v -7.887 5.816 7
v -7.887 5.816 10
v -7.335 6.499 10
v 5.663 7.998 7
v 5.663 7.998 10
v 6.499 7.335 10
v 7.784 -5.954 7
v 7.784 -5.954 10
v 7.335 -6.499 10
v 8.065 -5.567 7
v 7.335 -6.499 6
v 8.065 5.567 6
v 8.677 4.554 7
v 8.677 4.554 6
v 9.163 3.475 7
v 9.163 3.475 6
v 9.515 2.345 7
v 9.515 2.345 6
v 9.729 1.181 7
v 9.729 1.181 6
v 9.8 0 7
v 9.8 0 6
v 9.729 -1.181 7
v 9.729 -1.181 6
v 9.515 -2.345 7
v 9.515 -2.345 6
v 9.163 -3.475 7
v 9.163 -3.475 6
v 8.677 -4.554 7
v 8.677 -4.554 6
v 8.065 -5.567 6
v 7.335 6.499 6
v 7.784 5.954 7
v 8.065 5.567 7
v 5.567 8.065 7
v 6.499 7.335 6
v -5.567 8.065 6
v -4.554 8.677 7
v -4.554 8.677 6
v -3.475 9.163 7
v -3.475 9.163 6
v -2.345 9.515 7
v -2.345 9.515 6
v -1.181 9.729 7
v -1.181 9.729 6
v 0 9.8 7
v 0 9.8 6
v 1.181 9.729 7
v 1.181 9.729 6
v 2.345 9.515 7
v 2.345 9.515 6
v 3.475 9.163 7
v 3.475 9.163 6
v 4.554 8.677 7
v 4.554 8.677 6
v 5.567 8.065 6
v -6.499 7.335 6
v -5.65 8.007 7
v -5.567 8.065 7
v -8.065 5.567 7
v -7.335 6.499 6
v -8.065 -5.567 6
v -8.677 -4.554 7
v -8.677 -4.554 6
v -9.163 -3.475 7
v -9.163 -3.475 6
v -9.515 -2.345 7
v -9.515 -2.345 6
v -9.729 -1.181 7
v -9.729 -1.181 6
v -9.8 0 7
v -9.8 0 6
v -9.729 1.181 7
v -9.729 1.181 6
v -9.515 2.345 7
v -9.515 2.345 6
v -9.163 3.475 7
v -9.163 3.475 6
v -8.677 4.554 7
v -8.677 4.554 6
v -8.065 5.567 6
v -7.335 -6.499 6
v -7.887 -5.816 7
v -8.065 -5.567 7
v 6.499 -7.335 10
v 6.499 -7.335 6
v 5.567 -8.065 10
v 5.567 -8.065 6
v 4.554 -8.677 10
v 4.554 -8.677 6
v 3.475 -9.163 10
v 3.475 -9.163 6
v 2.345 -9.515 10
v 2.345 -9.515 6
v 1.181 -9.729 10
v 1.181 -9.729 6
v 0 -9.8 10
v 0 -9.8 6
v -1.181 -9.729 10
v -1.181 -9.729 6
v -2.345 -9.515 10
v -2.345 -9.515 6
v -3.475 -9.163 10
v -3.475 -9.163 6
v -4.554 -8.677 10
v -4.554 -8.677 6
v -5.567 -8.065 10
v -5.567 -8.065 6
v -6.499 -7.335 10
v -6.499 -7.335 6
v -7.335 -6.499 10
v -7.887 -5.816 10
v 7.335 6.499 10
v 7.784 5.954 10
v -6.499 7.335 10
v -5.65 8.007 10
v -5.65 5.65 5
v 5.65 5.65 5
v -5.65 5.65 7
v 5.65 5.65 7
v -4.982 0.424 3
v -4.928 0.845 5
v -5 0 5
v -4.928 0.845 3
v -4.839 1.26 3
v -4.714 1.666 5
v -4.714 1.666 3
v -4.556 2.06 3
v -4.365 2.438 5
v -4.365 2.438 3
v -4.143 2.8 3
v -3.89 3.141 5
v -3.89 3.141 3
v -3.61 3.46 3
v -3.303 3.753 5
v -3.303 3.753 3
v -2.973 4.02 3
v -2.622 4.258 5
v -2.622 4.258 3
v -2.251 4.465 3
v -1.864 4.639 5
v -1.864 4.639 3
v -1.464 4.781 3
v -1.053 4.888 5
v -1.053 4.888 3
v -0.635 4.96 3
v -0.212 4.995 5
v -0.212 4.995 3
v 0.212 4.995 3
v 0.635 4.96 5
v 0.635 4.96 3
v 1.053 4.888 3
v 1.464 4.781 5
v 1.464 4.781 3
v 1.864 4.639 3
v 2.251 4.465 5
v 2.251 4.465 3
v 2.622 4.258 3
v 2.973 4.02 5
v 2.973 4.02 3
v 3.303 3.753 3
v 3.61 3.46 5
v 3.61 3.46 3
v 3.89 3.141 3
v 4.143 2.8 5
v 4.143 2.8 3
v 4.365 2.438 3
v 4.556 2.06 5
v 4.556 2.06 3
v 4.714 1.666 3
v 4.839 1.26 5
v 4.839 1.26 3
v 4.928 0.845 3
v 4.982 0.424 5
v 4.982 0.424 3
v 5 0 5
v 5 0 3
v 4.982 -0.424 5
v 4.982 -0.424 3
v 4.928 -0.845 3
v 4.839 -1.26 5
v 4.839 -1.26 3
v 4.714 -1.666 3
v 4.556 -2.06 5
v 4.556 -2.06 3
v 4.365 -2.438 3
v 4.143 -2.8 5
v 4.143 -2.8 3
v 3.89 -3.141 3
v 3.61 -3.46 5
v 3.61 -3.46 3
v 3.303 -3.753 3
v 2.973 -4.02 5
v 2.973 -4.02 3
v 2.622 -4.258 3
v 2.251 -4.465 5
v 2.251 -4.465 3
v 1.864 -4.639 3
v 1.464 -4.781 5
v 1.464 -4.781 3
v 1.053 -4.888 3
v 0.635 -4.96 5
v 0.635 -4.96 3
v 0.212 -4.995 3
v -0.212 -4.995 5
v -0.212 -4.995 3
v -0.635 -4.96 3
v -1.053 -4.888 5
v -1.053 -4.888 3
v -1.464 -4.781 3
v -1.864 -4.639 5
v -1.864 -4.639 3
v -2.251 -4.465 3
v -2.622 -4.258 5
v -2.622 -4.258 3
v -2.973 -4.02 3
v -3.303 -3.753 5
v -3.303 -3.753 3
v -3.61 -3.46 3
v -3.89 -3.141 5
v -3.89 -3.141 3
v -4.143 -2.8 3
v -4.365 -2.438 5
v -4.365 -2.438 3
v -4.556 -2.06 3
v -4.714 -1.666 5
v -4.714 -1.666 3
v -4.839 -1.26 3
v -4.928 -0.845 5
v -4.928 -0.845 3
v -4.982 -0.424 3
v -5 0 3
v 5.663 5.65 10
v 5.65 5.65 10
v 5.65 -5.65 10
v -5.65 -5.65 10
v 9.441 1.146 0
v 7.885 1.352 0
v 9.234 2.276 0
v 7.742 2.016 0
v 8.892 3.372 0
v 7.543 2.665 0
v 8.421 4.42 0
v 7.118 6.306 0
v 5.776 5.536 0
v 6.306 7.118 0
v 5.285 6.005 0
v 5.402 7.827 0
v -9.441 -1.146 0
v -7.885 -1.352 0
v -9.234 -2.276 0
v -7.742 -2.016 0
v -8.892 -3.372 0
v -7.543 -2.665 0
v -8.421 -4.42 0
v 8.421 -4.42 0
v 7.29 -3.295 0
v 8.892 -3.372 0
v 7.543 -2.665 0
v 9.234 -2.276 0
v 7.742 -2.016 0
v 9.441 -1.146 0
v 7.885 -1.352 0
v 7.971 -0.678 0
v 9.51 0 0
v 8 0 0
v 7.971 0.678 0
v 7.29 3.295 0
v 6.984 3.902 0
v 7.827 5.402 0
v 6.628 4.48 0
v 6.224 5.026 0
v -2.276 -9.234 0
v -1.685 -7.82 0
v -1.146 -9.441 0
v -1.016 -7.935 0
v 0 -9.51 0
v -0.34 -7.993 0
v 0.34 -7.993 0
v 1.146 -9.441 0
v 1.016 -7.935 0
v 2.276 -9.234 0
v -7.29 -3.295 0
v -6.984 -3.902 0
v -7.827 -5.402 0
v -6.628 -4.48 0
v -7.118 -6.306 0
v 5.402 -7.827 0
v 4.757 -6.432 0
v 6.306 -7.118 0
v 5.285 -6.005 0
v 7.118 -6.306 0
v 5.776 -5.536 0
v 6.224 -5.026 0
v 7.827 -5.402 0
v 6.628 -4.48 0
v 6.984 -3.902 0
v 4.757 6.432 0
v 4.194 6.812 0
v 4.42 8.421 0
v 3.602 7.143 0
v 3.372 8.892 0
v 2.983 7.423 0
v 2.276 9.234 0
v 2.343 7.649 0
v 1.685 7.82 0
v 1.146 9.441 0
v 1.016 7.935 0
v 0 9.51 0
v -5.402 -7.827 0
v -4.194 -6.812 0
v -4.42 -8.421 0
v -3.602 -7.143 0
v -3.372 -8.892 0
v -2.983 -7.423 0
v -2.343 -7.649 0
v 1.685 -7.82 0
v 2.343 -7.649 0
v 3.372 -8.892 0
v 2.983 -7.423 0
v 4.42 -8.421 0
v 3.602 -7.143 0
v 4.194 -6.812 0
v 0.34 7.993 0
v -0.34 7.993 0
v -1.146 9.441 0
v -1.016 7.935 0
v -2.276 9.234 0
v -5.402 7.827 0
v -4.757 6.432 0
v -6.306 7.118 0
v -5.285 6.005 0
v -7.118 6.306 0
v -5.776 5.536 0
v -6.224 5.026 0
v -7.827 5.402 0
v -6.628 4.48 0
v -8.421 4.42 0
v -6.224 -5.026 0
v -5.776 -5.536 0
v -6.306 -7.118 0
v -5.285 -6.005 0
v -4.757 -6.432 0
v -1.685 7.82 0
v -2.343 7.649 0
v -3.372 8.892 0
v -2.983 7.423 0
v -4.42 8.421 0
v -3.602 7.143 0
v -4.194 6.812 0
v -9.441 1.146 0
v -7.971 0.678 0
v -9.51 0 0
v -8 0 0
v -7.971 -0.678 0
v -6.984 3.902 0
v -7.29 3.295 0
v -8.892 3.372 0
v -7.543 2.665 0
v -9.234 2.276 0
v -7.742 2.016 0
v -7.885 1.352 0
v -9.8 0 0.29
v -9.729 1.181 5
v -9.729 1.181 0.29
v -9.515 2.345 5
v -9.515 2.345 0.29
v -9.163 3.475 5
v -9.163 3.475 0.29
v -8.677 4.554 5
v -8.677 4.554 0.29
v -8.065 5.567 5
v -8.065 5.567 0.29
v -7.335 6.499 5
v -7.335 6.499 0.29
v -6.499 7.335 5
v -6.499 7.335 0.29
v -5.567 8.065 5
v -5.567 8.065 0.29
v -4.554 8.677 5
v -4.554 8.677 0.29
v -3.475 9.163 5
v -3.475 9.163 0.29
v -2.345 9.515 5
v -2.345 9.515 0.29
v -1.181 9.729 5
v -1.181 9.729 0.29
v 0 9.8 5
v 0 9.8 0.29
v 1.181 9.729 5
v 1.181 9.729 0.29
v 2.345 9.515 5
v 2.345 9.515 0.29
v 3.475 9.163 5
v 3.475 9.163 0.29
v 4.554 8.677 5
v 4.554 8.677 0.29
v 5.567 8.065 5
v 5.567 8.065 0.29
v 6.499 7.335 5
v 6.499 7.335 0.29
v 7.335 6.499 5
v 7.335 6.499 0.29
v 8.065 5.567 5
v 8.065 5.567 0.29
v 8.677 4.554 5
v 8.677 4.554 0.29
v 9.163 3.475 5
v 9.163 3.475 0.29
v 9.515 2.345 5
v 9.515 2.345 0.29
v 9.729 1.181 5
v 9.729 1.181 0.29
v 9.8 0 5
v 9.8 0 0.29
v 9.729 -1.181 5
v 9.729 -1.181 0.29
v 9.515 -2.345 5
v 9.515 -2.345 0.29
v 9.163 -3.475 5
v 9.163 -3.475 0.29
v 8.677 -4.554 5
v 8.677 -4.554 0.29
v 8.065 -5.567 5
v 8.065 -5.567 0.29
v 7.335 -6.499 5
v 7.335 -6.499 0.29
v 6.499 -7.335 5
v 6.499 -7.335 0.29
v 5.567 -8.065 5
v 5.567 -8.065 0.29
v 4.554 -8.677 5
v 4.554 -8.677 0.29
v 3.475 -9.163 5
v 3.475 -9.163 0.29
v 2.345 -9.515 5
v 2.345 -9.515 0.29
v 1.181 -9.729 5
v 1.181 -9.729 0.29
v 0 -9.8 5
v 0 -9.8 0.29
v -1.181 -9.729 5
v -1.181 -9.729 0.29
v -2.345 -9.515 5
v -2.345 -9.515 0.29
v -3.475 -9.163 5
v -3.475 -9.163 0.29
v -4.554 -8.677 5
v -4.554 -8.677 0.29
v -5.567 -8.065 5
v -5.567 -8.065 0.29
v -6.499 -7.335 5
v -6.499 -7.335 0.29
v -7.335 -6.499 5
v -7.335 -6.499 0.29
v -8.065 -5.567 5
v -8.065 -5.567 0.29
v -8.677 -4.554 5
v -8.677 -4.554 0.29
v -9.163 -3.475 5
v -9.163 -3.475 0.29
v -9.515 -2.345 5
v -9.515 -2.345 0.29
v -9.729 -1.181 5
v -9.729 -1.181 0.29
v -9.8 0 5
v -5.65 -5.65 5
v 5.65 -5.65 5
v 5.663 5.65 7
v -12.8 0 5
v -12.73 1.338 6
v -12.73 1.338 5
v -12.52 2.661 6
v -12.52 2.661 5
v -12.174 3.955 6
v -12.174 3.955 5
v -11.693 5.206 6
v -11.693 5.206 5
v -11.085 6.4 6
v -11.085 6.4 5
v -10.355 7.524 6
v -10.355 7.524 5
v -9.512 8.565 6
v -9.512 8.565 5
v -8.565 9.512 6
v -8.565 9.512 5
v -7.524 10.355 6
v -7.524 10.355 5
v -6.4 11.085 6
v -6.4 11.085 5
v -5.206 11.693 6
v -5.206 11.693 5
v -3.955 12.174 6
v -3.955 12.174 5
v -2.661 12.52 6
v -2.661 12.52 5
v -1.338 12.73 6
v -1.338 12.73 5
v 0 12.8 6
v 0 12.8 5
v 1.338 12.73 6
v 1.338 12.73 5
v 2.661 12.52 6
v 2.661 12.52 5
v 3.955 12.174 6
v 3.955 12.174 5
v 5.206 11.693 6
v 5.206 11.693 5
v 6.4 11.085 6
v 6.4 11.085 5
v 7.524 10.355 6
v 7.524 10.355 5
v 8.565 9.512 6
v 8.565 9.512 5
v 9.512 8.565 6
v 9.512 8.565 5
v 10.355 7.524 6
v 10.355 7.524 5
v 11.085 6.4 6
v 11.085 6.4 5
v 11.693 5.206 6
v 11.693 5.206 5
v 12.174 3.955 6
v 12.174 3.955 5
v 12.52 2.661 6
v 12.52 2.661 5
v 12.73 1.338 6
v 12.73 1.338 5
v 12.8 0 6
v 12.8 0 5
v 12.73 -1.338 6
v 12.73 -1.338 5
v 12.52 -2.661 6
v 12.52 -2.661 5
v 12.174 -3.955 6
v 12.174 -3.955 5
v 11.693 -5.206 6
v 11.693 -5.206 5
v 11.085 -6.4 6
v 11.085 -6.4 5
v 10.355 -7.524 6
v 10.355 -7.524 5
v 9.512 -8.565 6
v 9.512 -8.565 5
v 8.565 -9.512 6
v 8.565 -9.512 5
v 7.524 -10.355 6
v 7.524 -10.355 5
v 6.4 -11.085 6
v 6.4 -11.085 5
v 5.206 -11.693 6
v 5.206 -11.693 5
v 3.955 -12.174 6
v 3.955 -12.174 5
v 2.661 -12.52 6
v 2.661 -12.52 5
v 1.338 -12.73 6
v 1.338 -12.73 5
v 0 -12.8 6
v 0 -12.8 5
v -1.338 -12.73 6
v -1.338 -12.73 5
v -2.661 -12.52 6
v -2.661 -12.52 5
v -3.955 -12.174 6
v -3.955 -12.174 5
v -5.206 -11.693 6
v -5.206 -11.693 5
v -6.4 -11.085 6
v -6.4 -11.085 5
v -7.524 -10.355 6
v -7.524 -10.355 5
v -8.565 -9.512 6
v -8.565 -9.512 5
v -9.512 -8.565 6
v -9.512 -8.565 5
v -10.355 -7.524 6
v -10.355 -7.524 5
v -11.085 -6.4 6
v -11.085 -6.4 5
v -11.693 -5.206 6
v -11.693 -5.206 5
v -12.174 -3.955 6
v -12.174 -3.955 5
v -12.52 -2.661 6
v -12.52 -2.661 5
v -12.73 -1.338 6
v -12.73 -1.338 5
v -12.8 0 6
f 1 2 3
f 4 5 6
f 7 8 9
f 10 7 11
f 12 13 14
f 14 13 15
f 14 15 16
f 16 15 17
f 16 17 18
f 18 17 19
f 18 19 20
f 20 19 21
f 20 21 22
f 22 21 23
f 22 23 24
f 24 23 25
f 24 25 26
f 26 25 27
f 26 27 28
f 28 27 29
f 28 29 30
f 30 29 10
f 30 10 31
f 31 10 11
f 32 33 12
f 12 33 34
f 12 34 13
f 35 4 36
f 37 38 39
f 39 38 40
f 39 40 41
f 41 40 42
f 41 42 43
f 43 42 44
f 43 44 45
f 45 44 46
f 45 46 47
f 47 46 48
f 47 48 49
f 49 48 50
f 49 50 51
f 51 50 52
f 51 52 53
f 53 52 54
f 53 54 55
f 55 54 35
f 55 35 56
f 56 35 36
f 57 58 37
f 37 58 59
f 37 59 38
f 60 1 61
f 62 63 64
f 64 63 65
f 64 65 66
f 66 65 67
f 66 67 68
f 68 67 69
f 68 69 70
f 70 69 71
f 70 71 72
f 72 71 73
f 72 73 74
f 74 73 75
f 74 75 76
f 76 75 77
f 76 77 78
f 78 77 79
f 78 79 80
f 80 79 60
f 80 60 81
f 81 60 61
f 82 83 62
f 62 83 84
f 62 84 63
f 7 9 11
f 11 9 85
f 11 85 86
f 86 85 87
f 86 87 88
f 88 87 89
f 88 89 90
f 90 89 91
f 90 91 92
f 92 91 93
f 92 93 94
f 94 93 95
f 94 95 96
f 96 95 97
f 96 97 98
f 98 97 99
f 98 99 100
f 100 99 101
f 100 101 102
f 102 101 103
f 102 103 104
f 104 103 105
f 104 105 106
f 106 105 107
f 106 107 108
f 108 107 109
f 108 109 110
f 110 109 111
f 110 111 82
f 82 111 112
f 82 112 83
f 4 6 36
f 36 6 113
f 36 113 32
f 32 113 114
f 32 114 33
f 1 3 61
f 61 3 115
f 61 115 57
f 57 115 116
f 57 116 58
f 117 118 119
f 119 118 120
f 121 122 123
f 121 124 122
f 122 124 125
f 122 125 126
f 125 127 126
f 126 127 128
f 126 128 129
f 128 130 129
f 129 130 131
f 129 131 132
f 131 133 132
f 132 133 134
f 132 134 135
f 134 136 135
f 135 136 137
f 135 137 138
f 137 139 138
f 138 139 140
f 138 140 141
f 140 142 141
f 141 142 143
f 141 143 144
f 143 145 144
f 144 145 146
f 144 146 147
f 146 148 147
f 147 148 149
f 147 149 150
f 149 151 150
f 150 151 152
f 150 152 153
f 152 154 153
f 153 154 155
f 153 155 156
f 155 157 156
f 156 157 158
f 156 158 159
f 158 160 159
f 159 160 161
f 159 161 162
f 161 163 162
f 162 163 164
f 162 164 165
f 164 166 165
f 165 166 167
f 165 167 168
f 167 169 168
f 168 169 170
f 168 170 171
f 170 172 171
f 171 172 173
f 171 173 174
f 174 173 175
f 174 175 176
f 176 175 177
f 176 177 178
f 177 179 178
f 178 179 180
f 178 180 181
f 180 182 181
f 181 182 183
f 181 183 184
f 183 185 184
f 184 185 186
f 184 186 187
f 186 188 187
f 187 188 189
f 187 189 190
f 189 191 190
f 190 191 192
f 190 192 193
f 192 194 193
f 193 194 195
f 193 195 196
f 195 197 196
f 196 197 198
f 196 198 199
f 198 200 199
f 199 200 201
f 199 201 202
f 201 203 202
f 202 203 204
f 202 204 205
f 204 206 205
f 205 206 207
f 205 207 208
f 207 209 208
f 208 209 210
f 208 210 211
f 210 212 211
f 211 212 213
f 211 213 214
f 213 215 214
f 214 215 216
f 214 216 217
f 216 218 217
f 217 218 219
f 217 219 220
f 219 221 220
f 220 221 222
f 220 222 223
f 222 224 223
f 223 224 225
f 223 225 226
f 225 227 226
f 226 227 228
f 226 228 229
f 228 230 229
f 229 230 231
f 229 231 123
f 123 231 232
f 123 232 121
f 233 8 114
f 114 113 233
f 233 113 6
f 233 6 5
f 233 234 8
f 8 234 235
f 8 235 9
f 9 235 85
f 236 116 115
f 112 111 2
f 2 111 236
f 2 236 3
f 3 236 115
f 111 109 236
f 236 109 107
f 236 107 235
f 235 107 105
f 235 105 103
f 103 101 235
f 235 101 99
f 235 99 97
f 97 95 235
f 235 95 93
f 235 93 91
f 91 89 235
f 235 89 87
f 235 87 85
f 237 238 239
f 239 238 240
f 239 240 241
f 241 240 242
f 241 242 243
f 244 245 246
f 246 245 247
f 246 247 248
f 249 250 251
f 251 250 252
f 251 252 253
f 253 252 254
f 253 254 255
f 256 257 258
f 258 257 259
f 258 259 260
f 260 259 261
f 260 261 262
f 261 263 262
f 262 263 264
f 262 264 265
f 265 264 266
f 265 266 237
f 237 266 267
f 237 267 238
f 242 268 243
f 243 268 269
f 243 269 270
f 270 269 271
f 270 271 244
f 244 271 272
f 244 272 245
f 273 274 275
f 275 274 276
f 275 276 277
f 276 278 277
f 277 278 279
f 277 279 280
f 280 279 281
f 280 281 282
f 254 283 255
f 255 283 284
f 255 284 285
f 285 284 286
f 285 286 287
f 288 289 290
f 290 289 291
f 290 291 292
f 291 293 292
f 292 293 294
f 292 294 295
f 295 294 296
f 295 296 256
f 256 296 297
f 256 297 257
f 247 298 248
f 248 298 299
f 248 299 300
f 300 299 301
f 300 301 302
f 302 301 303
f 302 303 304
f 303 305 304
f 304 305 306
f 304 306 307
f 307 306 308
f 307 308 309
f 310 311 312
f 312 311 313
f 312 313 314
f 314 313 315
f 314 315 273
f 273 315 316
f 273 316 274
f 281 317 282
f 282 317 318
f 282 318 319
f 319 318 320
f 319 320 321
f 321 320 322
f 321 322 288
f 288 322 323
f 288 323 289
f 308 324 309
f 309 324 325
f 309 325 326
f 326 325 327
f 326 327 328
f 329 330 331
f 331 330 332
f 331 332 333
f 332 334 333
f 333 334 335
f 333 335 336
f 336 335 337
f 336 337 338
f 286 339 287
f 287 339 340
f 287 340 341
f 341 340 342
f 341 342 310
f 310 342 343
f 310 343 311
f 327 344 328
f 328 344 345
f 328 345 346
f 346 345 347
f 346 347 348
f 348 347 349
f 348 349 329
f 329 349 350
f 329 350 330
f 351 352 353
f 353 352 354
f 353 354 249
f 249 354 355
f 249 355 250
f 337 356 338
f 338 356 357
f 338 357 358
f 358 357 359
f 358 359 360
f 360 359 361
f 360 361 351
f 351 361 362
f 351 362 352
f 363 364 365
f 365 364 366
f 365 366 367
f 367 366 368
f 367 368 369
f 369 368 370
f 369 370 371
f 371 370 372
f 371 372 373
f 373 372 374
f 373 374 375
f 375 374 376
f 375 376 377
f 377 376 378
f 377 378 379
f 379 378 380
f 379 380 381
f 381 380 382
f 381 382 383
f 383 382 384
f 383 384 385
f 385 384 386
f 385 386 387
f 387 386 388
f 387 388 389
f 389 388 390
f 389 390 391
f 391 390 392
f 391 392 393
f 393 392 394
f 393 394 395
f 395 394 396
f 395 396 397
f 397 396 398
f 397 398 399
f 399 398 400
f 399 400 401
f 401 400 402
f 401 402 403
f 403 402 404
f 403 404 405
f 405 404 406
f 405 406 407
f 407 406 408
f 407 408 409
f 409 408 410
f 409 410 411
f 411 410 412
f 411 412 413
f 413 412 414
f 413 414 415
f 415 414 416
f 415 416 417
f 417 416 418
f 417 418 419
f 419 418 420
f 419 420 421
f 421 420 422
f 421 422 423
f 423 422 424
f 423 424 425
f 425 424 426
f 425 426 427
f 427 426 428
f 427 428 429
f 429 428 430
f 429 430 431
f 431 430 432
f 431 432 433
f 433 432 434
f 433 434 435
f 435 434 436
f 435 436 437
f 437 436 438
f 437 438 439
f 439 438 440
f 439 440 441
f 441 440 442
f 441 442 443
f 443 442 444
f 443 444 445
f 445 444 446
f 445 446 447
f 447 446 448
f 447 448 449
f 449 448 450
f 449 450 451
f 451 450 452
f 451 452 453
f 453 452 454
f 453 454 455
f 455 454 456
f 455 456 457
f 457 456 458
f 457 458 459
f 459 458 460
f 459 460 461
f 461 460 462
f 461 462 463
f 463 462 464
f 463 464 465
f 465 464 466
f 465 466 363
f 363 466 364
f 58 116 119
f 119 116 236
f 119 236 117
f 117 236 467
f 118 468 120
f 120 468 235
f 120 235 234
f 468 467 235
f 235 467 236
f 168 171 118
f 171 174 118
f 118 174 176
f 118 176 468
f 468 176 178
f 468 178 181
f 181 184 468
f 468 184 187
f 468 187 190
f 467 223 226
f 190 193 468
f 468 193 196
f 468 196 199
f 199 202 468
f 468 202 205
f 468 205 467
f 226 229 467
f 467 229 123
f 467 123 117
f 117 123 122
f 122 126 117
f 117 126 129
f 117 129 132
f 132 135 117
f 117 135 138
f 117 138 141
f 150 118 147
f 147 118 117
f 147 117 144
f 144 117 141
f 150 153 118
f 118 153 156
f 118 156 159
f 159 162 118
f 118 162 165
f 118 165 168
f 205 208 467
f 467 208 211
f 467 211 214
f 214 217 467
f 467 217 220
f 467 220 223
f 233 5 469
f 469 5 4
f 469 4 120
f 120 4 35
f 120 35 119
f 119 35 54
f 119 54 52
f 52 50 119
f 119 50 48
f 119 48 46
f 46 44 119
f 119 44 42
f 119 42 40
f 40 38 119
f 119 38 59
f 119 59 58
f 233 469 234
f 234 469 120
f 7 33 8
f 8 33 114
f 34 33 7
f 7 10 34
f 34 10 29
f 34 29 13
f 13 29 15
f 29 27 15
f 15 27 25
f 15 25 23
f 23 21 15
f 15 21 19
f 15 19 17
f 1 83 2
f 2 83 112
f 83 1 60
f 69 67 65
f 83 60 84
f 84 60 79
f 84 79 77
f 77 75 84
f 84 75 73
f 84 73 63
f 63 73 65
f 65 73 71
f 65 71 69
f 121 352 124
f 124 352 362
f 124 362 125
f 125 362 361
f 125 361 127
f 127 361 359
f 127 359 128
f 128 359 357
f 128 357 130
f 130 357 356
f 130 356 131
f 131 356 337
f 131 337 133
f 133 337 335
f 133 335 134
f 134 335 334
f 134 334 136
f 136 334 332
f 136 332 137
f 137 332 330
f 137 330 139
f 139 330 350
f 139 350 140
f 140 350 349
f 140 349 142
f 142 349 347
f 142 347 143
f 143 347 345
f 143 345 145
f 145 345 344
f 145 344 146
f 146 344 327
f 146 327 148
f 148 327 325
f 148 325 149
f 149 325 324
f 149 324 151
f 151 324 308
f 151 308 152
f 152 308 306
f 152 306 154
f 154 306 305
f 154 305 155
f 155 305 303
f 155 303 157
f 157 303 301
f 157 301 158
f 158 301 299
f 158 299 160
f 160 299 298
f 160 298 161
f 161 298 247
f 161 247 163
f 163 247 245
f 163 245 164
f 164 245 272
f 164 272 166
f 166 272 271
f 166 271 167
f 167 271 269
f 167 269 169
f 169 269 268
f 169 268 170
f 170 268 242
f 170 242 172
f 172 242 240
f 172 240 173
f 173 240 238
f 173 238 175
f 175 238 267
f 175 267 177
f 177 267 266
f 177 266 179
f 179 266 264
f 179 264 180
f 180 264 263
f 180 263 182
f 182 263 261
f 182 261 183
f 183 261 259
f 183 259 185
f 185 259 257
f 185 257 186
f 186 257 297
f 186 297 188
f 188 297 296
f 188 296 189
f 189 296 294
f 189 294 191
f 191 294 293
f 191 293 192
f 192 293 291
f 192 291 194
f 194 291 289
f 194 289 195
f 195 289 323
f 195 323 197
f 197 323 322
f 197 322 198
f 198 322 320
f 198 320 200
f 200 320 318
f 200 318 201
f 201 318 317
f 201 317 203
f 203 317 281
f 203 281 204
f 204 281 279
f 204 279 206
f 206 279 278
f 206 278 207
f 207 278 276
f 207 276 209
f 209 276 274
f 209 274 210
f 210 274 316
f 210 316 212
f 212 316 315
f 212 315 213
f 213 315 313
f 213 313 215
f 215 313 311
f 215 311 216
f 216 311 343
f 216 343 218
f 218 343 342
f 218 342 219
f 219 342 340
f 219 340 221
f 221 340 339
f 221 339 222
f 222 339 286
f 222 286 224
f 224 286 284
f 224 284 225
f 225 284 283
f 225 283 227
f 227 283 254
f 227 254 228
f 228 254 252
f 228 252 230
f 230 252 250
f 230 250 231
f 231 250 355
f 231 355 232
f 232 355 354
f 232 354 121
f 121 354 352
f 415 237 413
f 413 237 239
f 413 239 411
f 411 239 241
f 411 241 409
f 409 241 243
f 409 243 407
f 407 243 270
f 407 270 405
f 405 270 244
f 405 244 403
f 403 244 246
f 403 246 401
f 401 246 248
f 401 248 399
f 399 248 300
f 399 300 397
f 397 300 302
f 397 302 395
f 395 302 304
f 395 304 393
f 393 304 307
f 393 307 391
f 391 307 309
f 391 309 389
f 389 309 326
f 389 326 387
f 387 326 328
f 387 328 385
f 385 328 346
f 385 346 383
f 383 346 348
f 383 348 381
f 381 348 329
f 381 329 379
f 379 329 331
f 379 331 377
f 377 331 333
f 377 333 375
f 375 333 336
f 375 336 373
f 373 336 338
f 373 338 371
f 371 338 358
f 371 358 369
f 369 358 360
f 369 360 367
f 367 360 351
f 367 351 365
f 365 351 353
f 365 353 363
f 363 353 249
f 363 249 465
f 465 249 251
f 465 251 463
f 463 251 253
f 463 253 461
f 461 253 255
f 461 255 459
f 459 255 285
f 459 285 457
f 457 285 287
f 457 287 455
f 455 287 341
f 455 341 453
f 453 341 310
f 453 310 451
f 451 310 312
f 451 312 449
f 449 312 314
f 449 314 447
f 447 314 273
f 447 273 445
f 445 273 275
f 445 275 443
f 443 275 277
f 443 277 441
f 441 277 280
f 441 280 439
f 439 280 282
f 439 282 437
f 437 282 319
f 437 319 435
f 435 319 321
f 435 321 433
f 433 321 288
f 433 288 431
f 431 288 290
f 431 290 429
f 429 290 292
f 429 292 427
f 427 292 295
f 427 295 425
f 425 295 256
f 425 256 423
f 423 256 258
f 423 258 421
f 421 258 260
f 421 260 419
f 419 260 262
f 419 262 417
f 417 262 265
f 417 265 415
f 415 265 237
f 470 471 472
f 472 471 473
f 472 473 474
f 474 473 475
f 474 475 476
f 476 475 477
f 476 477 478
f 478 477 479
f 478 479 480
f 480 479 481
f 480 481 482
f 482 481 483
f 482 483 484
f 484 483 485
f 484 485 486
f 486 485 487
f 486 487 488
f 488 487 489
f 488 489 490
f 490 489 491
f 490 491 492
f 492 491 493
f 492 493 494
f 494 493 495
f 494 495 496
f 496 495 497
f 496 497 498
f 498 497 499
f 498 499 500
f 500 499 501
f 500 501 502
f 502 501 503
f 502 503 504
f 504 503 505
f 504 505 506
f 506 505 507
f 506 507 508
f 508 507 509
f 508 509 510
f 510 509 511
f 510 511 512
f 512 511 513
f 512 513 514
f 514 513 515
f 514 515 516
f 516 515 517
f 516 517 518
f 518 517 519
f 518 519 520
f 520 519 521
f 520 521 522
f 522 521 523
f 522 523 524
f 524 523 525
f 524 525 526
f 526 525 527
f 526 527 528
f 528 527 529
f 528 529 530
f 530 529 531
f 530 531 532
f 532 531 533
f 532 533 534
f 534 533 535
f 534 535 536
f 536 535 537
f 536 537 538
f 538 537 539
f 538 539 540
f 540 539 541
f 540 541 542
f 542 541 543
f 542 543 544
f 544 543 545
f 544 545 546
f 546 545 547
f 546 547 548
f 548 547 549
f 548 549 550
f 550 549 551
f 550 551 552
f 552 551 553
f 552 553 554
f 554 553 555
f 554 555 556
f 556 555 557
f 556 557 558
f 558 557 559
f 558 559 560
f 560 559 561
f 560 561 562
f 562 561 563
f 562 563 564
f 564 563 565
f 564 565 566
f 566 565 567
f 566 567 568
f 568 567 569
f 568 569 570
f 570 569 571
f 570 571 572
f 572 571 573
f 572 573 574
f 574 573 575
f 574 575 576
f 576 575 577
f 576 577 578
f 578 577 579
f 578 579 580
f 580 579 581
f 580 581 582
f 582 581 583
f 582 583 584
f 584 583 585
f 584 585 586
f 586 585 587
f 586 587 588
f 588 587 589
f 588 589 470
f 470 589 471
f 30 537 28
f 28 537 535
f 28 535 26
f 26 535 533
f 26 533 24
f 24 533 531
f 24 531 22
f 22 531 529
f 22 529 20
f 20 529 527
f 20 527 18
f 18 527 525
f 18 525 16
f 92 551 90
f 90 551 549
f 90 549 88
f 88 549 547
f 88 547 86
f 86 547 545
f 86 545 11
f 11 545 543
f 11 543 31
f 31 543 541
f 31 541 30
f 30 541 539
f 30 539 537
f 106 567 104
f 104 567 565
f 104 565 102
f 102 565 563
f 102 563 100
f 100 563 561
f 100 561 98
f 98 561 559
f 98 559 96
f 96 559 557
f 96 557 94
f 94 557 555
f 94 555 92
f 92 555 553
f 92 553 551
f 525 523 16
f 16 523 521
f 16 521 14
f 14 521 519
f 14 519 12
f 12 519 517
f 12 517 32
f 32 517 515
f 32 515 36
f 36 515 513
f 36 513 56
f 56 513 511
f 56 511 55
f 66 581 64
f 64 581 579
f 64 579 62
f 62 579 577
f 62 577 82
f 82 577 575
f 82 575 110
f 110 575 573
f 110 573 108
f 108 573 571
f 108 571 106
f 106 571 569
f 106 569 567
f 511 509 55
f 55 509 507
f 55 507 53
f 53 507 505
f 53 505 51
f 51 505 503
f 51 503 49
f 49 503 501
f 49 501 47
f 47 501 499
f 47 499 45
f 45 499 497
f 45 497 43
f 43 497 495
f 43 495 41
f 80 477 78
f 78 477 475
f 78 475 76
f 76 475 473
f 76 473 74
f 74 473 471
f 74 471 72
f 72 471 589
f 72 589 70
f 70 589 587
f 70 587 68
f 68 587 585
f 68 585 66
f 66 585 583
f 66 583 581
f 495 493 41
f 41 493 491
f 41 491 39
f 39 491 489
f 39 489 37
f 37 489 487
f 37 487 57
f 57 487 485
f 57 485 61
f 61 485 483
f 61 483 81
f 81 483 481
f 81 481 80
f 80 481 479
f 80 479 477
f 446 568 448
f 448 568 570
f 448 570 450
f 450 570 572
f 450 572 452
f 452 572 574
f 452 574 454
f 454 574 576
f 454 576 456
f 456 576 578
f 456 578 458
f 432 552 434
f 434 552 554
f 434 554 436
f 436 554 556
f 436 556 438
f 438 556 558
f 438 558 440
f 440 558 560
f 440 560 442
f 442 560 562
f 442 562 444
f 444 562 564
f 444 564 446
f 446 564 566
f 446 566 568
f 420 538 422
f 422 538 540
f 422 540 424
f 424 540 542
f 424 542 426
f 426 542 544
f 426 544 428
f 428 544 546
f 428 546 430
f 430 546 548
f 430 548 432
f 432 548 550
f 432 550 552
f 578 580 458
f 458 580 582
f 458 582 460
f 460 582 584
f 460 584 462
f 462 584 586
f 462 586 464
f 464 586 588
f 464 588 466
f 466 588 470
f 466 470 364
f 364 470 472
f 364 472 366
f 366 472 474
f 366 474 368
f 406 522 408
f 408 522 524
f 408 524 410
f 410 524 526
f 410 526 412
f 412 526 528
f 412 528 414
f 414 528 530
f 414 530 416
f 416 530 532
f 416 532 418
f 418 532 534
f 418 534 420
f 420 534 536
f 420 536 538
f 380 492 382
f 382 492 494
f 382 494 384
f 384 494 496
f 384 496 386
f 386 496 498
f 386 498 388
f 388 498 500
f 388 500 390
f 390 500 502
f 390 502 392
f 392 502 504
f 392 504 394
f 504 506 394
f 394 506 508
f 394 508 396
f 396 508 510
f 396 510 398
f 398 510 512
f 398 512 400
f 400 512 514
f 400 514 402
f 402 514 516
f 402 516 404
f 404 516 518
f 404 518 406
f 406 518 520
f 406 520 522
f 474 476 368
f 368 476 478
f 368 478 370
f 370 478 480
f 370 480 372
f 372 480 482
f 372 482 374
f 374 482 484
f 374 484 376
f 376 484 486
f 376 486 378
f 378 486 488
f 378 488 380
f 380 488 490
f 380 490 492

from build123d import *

# Parameters (mm, degrees)
SKETCH1_R           = 9.8
SKETCH1_R_2         = 5
BOSS_EXTRUDE1_DEPTH = 10
SKETCH2_W           = 11.3
SKETCH2_H           = 11.3
CUT_EXTRUDE1_DEPTH  = 5
SKETCH3_W           = 11.313408722
SKETCH3_H           = 4.707055676
CUT_EXTRUDE2_DEPTH  = 3
SKETCH4_W           = 5.404805584
SKETCH4_H           = 18.076359344
SKETCH4_W_2         = 5.663408722
SKETCH4_H_2         = 17.947057775
CUT_EXTRUDE3_DEPTH  = 3
CHAMFER1_SIZE       = 3
CHAMFER2_SIZE       = 0.29
SKETCH5_R           = 12.8
SKETCH5_R_2         = 9.8
BOSS_EXTRUDE2_DEPTH = 1


with BuildPart() as part:
    # Sketch1 → Boss-Extrude1 (new body)
    with BuildSketch(Plane.XY):
        Circle(SKETCH1_R)
        Circle(SKETCH1_R_2, mode=Mode.SUBTRACT)
    extrude(amount=BOSS_EXTRUDE1_DEPTH)

    # Sketch2 → Cut-Extrude1 (cut)
    with BuildSketch(Plane.XY.offset(10)):
        Rectangle(SKETCH2_W, SKETCH2_H)
    extrude(amount=-CUT_EXTRUDE1_DEPTH, mode=Mode.SUBTRACT)

    # Sketch3 → Cut-Extrude2 (cut)
    with BuildSketch(Plane.XY.offset(10)):
        with Locations((0.006704361, 8.003527838)):
            Rectangle(SKETCH3_W, SKETCH3_H)
    extrude(amount=-CUT_EXTRUDE2_DEPTH, mode=Mode.SUBTRACT)

    # Sketch4 → Cut-Extrude3 (cut)
    with BuildSketch(Plane.XY.offset(10)):
        with Locations((-10.5897985, 0)):
            Rectangle(SKETCH4_W, SKETCH4_H)
        with Locations((10.615658814, 0.064650784)):
            Rectangle(SKETCH4_W_2, SKETCH4_H_2)
    extrude(amount=-CUT_EXTRUDE3_DEPTH, mode=Mode.SUBTRACT)

    # Chamfer1
    chamfer1_edges = [part.edges().sort_by_distance(p)[0] for p in [
        (-5, 0, 0),
    ]]
    chamfer(chamfer1_edges, length=CHAMFER1_SIZE)

    # Chamfer2
    chamfer2_edges = [part.edges().sort_by_distance(p)[0] for p in [
        (-9.8, 0, 0),
    ]]
    chamfer(chamfer2_edges, length=CHAMFER2_SIZE)

    # Sketch5 → Boss-Extrude2 (add)
    with BuildSketch(Plane(origin=(0, 0, 5), x_dir=(-1, 0, 0), z_dir=(0, 0, -1))):
        Circle(SKETCH5_R)
        Circle(SKETCH5_R_2, mode=Mode.SUBTRACT)
    extrude(amount=-BOSS_EXTRUDE2_DEPTH)


solid = part.part
